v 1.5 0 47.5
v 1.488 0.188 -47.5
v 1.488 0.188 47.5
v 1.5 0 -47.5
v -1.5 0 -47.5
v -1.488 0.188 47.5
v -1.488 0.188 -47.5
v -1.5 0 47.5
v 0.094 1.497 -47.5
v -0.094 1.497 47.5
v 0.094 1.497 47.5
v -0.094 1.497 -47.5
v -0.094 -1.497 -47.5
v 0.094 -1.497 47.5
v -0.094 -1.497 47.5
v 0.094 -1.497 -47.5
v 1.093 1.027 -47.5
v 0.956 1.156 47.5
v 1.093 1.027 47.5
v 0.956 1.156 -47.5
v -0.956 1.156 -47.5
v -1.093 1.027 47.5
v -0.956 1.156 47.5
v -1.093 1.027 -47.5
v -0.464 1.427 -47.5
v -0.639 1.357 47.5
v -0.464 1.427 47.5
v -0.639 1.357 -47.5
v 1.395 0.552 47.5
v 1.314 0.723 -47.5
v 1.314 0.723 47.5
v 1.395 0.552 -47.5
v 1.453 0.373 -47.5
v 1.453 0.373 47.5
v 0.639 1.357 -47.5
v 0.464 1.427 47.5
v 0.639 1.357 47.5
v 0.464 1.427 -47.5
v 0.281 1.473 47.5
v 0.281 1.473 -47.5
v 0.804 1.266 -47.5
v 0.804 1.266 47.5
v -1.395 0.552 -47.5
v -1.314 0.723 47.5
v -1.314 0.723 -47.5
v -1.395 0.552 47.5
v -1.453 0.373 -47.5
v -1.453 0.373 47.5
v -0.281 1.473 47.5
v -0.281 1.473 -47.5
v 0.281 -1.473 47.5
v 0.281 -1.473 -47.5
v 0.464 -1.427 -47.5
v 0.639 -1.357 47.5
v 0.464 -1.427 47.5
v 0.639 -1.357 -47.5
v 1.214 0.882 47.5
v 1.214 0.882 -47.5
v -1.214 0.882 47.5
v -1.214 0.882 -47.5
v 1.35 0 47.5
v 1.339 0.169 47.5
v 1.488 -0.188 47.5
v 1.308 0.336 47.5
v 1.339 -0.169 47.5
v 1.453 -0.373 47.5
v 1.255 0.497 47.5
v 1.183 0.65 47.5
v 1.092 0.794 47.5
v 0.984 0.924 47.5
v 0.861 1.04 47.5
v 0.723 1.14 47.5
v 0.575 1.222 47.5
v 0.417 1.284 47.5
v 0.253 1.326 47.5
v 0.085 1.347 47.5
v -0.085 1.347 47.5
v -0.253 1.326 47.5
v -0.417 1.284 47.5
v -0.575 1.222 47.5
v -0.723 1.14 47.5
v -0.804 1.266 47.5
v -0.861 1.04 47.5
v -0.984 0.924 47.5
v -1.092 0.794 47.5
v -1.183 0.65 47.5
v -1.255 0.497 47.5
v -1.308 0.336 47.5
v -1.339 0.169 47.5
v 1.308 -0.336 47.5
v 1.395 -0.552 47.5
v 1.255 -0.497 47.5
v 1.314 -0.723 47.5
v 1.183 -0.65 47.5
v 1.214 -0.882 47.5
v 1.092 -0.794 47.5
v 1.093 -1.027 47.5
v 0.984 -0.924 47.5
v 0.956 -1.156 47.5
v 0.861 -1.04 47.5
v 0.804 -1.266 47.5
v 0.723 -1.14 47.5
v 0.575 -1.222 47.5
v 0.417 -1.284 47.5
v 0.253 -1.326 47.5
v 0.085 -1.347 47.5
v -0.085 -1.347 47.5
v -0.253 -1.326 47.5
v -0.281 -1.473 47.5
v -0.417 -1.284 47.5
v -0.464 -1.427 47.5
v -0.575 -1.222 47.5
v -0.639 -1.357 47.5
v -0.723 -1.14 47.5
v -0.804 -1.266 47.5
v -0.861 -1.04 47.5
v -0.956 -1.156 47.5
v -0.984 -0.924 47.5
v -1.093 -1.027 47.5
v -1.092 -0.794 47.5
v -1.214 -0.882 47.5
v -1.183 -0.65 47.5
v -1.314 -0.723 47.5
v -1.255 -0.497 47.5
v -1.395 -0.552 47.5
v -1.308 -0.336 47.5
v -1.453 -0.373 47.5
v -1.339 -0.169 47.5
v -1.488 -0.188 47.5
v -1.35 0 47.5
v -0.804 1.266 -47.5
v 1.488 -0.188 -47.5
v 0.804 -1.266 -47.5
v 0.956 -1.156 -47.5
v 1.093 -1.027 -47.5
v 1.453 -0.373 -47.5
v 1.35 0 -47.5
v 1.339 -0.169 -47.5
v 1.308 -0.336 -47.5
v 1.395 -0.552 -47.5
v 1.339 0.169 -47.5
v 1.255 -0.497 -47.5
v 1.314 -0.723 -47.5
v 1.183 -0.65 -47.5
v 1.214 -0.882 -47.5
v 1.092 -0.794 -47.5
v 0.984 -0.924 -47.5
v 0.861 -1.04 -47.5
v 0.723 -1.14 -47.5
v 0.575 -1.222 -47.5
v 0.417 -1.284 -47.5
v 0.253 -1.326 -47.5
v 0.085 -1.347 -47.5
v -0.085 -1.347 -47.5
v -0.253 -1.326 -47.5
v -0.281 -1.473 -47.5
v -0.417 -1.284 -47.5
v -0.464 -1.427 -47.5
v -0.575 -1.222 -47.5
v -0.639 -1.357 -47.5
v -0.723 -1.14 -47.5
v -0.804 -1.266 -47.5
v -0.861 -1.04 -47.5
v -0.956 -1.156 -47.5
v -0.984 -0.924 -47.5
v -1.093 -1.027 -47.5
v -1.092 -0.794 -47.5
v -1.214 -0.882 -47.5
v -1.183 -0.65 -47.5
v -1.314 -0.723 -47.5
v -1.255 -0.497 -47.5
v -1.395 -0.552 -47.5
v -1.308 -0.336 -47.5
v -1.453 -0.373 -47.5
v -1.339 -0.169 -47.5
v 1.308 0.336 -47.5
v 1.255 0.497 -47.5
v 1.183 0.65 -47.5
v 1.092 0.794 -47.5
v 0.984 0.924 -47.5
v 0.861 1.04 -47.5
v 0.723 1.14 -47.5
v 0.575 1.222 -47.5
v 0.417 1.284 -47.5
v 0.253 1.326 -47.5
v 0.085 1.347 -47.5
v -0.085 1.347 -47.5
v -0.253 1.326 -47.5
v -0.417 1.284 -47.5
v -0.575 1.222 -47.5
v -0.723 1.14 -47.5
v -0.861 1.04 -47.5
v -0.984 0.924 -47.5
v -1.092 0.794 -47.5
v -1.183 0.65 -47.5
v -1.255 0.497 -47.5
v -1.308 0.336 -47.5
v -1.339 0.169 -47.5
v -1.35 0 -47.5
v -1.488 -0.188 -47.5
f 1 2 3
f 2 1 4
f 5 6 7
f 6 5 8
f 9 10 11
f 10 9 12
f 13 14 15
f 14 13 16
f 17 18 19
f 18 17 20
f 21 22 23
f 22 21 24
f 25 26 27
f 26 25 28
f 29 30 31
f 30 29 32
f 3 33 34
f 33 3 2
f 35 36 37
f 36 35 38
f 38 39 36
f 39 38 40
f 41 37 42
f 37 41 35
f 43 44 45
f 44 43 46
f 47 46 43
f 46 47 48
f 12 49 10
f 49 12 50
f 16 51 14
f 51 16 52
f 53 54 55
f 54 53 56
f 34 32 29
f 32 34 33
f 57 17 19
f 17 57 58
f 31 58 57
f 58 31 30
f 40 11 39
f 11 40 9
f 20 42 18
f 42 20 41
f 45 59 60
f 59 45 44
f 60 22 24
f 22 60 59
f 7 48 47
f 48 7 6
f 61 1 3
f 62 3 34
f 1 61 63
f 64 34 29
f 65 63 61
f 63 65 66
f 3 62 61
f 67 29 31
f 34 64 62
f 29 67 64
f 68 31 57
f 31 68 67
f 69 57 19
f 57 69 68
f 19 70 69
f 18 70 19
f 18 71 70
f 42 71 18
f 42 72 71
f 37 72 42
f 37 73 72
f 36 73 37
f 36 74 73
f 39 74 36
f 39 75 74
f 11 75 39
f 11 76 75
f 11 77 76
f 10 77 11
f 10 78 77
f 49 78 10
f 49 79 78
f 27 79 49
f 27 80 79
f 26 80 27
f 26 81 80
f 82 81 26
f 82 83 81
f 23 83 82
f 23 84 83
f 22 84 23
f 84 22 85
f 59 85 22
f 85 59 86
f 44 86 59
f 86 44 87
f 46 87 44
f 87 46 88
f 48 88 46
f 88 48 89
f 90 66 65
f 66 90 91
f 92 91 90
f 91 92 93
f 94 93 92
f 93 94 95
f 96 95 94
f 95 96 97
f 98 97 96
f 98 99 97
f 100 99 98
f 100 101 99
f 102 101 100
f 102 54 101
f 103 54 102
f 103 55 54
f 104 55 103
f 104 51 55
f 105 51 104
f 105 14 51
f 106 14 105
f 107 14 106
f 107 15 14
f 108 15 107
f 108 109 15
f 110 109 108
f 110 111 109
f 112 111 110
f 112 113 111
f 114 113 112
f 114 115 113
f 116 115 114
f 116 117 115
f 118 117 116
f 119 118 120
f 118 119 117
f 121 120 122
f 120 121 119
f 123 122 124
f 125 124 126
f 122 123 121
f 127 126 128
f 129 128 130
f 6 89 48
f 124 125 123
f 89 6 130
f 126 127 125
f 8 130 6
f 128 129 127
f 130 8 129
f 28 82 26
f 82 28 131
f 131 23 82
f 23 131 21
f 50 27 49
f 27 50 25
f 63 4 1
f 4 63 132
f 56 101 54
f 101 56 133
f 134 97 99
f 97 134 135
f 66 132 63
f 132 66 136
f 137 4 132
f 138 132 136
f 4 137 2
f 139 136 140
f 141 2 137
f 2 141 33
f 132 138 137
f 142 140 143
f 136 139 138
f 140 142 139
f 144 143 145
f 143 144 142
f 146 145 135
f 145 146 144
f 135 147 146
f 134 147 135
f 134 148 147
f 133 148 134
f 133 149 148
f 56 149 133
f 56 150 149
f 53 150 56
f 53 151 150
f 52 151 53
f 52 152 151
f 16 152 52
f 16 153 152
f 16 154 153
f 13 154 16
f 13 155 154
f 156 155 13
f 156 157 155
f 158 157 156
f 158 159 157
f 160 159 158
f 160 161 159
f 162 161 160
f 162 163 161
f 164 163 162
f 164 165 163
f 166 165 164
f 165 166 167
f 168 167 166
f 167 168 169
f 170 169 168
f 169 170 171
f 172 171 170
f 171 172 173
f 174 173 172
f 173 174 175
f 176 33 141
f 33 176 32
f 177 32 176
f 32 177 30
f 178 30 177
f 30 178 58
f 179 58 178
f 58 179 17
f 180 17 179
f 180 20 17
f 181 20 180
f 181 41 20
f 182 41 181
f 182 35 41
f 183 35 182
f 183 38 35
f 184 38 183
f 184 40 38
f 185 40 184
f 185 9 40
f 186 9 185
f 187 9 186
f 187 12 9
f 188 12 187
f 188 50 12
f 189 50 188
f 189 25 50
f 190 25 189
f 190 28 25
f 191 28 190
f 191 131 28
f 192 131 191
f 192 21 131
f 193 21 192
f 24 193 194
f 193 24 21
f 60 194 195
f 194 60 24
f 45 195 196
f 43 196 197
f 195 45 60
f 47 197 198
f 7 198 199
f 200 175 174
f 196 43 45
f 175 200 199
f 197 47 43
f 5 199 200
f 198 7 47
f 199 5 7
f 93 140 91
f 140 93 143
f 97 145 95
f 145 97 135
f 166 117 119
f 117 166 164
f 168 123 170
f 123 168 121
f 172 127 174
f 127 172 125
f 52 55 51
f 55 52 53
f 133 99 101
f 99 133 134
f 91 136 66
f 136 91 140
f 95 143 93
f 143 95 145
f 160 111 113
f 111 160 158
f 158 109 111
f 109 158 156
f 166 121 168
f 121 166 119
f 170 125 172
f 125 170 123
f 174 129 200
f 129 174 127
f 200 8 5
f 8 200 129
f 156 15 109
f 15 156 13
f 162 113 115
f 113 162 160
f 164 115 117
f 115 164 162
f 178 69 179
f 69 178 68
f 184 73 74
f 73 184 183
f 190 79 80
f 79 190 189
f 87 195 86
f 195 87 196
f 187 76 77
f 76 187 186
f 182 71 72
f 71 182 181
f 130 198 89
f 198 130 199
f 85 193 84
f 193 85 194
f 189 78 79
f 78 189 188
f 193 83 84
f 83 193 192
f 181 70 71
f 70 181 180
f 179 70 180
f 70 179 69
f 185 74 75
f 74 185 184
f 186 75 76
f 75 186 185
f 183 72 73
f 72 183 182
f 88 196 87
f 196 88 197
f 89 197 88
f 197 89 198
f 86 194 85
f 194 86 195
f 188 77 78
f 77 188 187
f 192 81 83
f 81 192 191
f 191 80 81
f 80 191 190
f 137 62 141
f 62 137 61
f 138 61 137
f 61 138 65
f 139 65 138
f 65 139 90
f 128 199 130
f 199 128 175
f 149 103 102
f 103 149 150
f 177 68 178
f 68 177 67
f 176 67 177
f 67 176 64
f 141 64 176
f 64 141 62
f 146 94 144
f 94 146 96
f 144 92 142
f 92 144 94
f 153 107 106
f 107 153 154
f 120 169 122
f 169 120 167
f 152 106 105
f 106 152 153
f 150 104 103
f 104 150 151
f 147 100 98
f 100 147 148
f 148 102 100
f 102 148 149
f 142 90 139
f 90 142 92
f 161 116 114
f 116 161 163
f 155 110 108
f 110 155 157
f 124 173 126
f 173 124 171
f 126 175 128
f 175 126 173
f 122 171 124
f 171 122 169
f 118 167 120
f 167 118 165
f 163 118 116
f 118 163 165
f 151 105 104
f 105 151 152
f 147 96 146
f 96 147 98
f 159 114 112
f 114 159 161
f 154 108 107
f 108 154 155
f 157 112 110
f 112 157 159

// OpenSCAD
$fn = 50;


difference() {
	union() {
		translate(v = [0, 0, -47.5000000000]) {
			cylinder(h = 95, r = 1.5000000000);
		}
	}
	union() {
		translate(v = [0, 0, -100.0000000000]) {
			cylinder(h = 200, r = 1.3500000000);
		}
	}
}
